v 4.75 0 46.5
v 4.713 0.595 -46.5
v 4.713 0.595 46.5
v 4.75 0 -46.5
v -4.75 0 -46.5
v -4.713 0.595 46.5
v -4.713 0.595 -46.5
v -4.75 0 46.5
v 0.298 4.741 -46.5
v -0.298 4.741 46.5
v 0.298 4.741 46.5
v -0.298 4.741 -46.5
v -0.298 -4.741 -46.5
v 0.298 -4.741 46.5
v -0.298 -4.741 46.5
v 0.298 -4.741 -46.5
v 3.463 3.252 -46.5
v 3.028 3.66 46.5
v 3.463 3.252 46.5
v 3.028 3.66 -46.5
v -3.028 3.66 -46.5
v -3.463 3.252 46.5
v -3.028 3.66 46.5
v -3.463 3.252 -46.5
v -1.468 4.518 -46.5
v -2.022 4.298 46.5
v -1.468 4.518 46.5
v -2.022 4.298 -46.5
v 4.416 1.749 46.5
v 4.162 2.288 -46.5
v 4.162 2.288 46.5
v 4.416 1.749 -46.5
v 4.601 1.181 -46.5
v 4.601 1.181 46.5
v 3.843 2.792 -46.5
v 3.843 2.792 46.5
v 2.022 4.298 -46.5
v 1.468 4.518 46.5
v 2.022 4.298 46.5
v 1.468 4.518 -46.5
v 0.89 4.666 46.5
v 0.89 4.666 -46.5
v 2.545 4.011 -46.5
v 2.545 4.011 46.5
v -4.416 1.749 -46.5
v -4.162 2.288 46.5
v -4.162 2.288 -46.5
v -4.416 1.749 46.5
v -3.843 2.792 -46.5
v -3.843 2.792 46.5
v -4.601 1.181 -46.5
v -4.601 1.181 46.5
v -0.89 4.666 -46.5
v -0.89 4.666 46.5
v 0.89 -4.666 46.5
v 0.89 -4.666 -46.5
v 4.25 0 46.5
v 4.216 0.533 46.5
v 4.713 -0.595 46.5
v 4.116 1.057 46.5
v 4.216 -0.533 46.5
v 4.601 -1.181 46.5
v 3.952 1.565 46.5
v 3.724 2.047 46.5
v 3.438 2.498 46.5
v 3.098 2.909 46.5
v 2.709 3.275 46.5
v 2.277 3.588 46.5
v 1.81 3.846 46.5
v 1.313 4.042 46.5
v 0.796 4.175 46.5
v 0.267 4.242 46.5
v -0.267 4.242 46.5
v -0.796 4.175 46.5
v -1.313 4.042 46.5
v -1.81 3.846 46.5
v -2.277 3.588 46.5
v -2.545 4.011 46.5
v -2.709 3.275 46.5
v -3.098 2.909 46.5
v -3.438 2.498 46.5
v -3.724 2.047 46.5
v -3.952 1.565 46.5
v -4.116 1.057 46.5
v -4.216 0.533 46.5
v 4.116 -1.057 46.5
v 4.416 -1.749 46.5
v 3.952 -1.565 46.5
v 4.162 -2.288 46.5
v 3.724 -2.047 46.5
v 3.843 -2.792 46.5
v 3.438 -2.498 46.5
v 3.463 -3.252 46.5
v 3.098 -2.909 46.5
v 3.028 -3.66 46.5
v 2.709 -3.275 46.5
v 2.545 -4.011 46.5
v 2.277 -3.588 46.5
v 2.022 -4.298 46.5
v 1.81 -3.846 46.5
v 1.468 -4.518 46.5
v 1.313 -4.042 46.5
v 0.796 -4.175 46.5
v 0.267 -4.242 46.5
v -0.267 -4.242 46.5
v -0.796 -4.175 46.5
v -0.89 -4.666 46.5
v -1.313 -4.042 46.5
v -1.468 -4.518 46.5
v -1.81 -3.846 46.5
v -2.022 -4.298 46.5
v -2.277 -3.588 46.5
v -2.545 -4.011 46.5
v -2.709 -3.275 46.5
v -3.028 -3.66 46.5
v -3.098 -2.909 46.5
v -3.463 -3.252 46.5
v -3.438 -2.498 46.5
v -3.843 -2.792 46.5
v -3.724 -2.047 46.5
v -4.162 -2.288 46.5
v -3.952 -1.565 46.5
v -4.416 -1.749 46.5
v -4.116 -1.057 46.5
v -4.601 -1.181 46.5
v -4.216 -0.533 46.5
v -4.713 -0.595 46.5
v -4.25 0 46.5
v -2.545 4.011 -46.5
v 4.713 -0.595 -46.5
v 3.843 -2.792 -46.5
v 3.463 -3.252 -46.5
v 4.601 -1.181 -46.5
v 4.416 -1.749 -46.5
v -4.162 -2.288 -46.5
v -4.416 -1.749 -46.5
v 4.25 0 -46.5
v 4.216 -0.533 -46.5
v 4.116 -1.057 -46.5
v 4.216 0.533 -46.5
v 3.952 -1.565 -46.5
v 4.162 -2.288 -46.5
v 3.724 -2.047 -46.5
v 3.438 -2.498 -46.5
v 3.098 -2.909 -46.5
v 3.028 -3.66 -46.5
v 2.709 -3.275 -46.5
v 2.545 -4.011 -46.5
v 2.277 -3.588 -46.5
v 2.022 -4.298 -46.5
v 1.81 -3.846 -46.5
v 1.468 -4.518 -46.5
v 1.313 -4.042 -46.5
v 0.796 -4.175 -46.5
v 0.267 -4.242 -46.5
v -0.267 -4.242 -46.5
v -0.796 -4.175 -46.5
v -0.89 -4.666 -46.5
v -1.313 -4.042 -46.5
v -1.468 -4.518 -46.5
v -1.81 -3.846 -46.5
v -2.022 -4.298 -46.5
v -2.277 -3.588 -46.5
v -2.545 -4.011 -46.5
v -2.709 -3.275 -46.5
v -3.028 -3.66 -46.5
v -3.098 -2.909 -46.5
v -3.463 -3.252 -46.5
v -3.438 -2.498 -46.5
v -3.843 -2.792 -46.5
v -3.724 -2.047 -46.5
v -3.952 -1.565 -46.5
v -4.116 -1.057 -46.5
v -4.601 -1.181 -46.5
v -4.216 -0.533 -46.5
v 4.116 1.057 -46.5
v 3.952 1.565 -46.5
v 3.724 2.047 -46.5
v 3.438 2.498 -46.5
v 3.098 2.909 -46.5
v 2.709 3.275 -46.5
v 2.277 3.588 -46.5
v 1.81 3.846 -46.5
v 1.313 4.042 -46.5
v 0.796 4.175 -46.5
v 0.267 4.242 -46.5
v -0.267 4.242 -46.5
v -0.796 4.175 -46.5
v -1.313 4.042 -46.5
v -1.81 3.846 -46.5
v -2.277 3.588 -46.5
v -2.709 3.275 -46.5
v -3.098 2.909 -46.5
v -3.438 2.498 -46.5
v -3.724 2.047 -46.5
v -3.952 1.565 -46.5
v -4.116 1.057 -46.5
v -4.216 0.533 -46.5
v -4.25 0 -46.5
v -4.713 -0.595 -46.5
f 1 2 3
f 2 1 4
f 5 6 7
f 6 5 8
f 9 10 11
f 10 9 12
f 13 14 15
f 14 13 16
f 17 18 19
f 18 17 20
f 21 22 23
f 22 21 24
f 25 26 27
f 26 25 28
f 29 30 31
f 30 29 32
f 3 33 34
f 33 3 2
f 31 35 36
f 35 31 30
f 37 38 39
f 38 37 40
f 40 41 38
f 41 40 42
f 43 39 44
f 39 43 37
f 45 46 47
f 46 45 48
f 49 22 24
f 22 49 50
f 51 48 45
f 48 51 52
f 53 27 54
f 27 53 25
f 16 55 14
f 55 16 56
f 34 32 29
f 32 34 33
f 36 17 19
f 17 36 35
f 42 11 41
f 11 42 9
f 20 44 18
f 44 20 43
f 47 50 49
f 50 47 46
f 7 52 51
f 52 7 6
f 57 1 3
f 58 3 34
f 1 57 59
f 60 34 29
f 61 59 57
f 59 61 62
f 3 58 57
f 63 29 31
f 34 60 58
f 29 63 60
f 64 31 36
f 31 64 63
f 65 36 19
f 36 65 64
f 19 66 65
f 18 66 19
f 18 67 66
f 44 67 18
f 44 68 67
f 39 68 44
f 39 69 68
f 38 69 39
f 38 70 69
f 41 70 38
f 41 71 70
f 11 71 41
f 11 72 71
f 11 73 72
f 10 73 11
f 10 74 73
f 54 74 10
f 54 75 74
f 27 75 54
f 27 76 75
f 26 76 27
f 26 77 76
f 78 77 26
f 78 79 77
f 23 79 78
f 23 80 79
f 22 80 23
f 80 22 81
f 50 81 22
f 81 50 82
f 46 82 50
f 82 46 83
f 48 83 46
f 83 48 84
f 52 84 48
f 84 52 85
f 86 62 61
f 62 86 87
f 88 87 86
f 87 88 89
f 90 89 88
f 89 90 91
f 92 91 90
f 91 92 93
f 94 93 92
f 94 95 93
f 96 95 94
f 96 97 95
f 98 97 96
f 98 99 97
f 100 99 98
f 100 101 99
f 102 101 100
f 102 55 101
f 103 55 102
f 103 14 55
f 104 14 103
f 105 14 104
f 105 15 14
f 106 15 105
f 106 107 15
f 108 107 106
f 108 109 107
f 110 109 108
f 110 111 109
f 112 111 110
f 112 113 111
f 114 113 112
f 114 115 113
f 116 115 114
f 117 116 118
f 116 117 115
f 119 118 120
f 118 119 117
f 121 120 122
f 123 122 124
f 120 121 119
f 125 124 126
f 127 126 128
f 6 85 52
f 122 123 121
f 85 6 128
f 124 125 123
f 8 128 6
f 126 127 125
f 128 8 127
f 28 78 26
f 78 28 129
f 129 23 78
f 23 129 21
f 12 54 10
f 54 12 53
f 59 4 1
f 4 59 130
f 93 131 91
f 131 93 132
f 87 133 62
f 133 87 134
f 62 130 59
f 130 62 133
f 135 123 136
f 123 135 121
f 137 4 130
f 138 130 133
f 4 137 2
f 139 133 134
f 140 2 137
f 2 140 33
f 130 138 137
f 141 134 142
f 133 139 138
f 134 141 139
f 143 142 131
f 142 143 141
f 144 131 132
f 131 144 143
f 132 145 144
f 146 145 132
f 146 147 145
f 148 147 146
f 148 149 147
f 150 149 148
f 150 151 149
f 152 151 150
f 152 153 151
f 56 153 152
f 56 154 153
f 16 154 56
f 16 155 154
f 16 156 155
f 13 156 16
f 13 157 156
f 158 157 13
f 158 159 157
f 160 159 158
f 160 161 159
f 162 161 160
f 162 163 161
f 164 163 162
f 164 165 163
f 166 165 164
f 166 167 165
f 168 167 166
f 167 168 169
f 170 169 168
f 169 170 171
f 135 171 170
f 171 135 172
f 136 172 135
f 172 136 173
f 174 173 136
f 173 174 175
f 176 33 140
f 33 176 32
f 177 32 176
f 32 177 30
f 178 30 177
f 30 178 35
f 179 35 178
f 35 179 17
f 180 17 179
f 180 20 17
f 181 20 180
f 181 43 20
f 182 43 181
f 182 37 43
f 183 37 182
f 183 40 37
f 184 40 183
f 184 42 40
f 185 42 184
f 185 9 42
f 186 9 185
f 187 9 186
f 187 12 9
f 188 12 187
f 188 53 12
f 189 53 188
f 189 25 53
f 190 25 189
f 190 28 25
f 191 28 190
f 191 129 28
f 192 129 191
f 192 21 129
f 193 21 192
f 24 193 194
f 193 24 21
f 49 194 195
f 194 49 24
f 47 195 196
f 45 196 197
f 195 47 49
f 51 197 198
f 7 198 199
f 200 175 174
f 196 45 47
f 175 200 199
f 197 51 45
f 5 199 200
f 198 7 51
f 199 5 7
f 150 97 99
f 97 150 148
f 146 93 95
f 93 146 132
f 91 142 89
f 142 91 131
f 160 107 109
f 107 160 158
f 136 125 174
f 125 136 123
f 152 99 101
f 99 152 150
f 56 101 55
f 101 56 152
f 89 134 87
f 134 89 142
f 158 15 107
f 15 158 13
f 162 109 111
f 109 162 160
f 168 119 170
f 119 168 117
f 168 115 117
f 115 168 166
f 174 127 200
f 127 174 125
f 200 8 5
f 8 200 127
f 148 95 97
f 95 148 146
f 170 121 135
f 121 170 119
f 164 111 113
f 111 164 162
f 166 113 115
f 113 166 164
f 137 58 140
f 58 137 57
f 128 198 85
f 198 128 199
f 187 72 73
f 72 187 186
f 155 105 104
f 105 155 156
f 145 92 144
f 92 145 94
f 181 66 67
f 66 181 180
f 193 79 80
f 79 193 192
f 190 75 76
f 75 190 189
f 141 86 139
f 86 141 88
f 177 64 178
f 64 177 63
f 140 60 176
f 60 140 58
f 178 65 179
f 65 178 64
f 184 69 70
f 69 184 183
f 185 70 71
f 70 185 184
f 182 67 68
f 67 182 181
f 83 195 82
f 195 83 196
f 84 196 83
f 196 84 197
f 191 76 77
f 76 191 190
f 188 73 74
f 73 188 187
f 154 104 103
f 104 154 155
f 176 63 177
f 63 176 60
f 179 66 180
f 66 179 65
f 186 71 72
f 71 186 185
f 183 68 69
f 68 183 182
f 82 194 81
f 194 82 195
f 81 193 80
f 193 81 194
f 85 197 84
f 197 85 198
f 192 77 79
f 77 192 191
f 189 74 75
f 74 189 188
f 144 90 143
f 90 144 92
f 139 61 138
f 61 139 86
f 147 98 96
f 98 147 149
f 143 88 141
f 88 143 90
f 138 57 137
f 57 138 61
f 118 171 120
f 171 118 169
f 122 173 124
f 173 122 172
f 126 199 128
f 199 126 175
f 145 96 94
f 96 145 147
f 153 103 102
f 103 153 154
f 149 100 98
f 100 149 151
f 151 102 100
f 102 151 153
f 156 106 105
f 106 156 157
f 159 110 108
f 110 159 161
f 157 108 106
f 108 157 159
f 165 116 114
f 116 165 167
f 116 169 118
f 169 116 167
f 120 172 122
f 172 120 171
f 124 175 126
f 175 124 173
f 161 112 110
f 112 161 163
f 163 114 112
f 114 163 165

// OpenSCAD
$fn = 50;


difference() {
	union() {
		translate(v = [0, 0, -46.5000000000]) {
			cylinder(h = 93, r = 4.7500000000);
		}
	}
	union() {
		translate(v = [0, 0, -100.0000000000]) {
			cylinder(h = 200, r = 4.2500000000);
		}
	}
}
